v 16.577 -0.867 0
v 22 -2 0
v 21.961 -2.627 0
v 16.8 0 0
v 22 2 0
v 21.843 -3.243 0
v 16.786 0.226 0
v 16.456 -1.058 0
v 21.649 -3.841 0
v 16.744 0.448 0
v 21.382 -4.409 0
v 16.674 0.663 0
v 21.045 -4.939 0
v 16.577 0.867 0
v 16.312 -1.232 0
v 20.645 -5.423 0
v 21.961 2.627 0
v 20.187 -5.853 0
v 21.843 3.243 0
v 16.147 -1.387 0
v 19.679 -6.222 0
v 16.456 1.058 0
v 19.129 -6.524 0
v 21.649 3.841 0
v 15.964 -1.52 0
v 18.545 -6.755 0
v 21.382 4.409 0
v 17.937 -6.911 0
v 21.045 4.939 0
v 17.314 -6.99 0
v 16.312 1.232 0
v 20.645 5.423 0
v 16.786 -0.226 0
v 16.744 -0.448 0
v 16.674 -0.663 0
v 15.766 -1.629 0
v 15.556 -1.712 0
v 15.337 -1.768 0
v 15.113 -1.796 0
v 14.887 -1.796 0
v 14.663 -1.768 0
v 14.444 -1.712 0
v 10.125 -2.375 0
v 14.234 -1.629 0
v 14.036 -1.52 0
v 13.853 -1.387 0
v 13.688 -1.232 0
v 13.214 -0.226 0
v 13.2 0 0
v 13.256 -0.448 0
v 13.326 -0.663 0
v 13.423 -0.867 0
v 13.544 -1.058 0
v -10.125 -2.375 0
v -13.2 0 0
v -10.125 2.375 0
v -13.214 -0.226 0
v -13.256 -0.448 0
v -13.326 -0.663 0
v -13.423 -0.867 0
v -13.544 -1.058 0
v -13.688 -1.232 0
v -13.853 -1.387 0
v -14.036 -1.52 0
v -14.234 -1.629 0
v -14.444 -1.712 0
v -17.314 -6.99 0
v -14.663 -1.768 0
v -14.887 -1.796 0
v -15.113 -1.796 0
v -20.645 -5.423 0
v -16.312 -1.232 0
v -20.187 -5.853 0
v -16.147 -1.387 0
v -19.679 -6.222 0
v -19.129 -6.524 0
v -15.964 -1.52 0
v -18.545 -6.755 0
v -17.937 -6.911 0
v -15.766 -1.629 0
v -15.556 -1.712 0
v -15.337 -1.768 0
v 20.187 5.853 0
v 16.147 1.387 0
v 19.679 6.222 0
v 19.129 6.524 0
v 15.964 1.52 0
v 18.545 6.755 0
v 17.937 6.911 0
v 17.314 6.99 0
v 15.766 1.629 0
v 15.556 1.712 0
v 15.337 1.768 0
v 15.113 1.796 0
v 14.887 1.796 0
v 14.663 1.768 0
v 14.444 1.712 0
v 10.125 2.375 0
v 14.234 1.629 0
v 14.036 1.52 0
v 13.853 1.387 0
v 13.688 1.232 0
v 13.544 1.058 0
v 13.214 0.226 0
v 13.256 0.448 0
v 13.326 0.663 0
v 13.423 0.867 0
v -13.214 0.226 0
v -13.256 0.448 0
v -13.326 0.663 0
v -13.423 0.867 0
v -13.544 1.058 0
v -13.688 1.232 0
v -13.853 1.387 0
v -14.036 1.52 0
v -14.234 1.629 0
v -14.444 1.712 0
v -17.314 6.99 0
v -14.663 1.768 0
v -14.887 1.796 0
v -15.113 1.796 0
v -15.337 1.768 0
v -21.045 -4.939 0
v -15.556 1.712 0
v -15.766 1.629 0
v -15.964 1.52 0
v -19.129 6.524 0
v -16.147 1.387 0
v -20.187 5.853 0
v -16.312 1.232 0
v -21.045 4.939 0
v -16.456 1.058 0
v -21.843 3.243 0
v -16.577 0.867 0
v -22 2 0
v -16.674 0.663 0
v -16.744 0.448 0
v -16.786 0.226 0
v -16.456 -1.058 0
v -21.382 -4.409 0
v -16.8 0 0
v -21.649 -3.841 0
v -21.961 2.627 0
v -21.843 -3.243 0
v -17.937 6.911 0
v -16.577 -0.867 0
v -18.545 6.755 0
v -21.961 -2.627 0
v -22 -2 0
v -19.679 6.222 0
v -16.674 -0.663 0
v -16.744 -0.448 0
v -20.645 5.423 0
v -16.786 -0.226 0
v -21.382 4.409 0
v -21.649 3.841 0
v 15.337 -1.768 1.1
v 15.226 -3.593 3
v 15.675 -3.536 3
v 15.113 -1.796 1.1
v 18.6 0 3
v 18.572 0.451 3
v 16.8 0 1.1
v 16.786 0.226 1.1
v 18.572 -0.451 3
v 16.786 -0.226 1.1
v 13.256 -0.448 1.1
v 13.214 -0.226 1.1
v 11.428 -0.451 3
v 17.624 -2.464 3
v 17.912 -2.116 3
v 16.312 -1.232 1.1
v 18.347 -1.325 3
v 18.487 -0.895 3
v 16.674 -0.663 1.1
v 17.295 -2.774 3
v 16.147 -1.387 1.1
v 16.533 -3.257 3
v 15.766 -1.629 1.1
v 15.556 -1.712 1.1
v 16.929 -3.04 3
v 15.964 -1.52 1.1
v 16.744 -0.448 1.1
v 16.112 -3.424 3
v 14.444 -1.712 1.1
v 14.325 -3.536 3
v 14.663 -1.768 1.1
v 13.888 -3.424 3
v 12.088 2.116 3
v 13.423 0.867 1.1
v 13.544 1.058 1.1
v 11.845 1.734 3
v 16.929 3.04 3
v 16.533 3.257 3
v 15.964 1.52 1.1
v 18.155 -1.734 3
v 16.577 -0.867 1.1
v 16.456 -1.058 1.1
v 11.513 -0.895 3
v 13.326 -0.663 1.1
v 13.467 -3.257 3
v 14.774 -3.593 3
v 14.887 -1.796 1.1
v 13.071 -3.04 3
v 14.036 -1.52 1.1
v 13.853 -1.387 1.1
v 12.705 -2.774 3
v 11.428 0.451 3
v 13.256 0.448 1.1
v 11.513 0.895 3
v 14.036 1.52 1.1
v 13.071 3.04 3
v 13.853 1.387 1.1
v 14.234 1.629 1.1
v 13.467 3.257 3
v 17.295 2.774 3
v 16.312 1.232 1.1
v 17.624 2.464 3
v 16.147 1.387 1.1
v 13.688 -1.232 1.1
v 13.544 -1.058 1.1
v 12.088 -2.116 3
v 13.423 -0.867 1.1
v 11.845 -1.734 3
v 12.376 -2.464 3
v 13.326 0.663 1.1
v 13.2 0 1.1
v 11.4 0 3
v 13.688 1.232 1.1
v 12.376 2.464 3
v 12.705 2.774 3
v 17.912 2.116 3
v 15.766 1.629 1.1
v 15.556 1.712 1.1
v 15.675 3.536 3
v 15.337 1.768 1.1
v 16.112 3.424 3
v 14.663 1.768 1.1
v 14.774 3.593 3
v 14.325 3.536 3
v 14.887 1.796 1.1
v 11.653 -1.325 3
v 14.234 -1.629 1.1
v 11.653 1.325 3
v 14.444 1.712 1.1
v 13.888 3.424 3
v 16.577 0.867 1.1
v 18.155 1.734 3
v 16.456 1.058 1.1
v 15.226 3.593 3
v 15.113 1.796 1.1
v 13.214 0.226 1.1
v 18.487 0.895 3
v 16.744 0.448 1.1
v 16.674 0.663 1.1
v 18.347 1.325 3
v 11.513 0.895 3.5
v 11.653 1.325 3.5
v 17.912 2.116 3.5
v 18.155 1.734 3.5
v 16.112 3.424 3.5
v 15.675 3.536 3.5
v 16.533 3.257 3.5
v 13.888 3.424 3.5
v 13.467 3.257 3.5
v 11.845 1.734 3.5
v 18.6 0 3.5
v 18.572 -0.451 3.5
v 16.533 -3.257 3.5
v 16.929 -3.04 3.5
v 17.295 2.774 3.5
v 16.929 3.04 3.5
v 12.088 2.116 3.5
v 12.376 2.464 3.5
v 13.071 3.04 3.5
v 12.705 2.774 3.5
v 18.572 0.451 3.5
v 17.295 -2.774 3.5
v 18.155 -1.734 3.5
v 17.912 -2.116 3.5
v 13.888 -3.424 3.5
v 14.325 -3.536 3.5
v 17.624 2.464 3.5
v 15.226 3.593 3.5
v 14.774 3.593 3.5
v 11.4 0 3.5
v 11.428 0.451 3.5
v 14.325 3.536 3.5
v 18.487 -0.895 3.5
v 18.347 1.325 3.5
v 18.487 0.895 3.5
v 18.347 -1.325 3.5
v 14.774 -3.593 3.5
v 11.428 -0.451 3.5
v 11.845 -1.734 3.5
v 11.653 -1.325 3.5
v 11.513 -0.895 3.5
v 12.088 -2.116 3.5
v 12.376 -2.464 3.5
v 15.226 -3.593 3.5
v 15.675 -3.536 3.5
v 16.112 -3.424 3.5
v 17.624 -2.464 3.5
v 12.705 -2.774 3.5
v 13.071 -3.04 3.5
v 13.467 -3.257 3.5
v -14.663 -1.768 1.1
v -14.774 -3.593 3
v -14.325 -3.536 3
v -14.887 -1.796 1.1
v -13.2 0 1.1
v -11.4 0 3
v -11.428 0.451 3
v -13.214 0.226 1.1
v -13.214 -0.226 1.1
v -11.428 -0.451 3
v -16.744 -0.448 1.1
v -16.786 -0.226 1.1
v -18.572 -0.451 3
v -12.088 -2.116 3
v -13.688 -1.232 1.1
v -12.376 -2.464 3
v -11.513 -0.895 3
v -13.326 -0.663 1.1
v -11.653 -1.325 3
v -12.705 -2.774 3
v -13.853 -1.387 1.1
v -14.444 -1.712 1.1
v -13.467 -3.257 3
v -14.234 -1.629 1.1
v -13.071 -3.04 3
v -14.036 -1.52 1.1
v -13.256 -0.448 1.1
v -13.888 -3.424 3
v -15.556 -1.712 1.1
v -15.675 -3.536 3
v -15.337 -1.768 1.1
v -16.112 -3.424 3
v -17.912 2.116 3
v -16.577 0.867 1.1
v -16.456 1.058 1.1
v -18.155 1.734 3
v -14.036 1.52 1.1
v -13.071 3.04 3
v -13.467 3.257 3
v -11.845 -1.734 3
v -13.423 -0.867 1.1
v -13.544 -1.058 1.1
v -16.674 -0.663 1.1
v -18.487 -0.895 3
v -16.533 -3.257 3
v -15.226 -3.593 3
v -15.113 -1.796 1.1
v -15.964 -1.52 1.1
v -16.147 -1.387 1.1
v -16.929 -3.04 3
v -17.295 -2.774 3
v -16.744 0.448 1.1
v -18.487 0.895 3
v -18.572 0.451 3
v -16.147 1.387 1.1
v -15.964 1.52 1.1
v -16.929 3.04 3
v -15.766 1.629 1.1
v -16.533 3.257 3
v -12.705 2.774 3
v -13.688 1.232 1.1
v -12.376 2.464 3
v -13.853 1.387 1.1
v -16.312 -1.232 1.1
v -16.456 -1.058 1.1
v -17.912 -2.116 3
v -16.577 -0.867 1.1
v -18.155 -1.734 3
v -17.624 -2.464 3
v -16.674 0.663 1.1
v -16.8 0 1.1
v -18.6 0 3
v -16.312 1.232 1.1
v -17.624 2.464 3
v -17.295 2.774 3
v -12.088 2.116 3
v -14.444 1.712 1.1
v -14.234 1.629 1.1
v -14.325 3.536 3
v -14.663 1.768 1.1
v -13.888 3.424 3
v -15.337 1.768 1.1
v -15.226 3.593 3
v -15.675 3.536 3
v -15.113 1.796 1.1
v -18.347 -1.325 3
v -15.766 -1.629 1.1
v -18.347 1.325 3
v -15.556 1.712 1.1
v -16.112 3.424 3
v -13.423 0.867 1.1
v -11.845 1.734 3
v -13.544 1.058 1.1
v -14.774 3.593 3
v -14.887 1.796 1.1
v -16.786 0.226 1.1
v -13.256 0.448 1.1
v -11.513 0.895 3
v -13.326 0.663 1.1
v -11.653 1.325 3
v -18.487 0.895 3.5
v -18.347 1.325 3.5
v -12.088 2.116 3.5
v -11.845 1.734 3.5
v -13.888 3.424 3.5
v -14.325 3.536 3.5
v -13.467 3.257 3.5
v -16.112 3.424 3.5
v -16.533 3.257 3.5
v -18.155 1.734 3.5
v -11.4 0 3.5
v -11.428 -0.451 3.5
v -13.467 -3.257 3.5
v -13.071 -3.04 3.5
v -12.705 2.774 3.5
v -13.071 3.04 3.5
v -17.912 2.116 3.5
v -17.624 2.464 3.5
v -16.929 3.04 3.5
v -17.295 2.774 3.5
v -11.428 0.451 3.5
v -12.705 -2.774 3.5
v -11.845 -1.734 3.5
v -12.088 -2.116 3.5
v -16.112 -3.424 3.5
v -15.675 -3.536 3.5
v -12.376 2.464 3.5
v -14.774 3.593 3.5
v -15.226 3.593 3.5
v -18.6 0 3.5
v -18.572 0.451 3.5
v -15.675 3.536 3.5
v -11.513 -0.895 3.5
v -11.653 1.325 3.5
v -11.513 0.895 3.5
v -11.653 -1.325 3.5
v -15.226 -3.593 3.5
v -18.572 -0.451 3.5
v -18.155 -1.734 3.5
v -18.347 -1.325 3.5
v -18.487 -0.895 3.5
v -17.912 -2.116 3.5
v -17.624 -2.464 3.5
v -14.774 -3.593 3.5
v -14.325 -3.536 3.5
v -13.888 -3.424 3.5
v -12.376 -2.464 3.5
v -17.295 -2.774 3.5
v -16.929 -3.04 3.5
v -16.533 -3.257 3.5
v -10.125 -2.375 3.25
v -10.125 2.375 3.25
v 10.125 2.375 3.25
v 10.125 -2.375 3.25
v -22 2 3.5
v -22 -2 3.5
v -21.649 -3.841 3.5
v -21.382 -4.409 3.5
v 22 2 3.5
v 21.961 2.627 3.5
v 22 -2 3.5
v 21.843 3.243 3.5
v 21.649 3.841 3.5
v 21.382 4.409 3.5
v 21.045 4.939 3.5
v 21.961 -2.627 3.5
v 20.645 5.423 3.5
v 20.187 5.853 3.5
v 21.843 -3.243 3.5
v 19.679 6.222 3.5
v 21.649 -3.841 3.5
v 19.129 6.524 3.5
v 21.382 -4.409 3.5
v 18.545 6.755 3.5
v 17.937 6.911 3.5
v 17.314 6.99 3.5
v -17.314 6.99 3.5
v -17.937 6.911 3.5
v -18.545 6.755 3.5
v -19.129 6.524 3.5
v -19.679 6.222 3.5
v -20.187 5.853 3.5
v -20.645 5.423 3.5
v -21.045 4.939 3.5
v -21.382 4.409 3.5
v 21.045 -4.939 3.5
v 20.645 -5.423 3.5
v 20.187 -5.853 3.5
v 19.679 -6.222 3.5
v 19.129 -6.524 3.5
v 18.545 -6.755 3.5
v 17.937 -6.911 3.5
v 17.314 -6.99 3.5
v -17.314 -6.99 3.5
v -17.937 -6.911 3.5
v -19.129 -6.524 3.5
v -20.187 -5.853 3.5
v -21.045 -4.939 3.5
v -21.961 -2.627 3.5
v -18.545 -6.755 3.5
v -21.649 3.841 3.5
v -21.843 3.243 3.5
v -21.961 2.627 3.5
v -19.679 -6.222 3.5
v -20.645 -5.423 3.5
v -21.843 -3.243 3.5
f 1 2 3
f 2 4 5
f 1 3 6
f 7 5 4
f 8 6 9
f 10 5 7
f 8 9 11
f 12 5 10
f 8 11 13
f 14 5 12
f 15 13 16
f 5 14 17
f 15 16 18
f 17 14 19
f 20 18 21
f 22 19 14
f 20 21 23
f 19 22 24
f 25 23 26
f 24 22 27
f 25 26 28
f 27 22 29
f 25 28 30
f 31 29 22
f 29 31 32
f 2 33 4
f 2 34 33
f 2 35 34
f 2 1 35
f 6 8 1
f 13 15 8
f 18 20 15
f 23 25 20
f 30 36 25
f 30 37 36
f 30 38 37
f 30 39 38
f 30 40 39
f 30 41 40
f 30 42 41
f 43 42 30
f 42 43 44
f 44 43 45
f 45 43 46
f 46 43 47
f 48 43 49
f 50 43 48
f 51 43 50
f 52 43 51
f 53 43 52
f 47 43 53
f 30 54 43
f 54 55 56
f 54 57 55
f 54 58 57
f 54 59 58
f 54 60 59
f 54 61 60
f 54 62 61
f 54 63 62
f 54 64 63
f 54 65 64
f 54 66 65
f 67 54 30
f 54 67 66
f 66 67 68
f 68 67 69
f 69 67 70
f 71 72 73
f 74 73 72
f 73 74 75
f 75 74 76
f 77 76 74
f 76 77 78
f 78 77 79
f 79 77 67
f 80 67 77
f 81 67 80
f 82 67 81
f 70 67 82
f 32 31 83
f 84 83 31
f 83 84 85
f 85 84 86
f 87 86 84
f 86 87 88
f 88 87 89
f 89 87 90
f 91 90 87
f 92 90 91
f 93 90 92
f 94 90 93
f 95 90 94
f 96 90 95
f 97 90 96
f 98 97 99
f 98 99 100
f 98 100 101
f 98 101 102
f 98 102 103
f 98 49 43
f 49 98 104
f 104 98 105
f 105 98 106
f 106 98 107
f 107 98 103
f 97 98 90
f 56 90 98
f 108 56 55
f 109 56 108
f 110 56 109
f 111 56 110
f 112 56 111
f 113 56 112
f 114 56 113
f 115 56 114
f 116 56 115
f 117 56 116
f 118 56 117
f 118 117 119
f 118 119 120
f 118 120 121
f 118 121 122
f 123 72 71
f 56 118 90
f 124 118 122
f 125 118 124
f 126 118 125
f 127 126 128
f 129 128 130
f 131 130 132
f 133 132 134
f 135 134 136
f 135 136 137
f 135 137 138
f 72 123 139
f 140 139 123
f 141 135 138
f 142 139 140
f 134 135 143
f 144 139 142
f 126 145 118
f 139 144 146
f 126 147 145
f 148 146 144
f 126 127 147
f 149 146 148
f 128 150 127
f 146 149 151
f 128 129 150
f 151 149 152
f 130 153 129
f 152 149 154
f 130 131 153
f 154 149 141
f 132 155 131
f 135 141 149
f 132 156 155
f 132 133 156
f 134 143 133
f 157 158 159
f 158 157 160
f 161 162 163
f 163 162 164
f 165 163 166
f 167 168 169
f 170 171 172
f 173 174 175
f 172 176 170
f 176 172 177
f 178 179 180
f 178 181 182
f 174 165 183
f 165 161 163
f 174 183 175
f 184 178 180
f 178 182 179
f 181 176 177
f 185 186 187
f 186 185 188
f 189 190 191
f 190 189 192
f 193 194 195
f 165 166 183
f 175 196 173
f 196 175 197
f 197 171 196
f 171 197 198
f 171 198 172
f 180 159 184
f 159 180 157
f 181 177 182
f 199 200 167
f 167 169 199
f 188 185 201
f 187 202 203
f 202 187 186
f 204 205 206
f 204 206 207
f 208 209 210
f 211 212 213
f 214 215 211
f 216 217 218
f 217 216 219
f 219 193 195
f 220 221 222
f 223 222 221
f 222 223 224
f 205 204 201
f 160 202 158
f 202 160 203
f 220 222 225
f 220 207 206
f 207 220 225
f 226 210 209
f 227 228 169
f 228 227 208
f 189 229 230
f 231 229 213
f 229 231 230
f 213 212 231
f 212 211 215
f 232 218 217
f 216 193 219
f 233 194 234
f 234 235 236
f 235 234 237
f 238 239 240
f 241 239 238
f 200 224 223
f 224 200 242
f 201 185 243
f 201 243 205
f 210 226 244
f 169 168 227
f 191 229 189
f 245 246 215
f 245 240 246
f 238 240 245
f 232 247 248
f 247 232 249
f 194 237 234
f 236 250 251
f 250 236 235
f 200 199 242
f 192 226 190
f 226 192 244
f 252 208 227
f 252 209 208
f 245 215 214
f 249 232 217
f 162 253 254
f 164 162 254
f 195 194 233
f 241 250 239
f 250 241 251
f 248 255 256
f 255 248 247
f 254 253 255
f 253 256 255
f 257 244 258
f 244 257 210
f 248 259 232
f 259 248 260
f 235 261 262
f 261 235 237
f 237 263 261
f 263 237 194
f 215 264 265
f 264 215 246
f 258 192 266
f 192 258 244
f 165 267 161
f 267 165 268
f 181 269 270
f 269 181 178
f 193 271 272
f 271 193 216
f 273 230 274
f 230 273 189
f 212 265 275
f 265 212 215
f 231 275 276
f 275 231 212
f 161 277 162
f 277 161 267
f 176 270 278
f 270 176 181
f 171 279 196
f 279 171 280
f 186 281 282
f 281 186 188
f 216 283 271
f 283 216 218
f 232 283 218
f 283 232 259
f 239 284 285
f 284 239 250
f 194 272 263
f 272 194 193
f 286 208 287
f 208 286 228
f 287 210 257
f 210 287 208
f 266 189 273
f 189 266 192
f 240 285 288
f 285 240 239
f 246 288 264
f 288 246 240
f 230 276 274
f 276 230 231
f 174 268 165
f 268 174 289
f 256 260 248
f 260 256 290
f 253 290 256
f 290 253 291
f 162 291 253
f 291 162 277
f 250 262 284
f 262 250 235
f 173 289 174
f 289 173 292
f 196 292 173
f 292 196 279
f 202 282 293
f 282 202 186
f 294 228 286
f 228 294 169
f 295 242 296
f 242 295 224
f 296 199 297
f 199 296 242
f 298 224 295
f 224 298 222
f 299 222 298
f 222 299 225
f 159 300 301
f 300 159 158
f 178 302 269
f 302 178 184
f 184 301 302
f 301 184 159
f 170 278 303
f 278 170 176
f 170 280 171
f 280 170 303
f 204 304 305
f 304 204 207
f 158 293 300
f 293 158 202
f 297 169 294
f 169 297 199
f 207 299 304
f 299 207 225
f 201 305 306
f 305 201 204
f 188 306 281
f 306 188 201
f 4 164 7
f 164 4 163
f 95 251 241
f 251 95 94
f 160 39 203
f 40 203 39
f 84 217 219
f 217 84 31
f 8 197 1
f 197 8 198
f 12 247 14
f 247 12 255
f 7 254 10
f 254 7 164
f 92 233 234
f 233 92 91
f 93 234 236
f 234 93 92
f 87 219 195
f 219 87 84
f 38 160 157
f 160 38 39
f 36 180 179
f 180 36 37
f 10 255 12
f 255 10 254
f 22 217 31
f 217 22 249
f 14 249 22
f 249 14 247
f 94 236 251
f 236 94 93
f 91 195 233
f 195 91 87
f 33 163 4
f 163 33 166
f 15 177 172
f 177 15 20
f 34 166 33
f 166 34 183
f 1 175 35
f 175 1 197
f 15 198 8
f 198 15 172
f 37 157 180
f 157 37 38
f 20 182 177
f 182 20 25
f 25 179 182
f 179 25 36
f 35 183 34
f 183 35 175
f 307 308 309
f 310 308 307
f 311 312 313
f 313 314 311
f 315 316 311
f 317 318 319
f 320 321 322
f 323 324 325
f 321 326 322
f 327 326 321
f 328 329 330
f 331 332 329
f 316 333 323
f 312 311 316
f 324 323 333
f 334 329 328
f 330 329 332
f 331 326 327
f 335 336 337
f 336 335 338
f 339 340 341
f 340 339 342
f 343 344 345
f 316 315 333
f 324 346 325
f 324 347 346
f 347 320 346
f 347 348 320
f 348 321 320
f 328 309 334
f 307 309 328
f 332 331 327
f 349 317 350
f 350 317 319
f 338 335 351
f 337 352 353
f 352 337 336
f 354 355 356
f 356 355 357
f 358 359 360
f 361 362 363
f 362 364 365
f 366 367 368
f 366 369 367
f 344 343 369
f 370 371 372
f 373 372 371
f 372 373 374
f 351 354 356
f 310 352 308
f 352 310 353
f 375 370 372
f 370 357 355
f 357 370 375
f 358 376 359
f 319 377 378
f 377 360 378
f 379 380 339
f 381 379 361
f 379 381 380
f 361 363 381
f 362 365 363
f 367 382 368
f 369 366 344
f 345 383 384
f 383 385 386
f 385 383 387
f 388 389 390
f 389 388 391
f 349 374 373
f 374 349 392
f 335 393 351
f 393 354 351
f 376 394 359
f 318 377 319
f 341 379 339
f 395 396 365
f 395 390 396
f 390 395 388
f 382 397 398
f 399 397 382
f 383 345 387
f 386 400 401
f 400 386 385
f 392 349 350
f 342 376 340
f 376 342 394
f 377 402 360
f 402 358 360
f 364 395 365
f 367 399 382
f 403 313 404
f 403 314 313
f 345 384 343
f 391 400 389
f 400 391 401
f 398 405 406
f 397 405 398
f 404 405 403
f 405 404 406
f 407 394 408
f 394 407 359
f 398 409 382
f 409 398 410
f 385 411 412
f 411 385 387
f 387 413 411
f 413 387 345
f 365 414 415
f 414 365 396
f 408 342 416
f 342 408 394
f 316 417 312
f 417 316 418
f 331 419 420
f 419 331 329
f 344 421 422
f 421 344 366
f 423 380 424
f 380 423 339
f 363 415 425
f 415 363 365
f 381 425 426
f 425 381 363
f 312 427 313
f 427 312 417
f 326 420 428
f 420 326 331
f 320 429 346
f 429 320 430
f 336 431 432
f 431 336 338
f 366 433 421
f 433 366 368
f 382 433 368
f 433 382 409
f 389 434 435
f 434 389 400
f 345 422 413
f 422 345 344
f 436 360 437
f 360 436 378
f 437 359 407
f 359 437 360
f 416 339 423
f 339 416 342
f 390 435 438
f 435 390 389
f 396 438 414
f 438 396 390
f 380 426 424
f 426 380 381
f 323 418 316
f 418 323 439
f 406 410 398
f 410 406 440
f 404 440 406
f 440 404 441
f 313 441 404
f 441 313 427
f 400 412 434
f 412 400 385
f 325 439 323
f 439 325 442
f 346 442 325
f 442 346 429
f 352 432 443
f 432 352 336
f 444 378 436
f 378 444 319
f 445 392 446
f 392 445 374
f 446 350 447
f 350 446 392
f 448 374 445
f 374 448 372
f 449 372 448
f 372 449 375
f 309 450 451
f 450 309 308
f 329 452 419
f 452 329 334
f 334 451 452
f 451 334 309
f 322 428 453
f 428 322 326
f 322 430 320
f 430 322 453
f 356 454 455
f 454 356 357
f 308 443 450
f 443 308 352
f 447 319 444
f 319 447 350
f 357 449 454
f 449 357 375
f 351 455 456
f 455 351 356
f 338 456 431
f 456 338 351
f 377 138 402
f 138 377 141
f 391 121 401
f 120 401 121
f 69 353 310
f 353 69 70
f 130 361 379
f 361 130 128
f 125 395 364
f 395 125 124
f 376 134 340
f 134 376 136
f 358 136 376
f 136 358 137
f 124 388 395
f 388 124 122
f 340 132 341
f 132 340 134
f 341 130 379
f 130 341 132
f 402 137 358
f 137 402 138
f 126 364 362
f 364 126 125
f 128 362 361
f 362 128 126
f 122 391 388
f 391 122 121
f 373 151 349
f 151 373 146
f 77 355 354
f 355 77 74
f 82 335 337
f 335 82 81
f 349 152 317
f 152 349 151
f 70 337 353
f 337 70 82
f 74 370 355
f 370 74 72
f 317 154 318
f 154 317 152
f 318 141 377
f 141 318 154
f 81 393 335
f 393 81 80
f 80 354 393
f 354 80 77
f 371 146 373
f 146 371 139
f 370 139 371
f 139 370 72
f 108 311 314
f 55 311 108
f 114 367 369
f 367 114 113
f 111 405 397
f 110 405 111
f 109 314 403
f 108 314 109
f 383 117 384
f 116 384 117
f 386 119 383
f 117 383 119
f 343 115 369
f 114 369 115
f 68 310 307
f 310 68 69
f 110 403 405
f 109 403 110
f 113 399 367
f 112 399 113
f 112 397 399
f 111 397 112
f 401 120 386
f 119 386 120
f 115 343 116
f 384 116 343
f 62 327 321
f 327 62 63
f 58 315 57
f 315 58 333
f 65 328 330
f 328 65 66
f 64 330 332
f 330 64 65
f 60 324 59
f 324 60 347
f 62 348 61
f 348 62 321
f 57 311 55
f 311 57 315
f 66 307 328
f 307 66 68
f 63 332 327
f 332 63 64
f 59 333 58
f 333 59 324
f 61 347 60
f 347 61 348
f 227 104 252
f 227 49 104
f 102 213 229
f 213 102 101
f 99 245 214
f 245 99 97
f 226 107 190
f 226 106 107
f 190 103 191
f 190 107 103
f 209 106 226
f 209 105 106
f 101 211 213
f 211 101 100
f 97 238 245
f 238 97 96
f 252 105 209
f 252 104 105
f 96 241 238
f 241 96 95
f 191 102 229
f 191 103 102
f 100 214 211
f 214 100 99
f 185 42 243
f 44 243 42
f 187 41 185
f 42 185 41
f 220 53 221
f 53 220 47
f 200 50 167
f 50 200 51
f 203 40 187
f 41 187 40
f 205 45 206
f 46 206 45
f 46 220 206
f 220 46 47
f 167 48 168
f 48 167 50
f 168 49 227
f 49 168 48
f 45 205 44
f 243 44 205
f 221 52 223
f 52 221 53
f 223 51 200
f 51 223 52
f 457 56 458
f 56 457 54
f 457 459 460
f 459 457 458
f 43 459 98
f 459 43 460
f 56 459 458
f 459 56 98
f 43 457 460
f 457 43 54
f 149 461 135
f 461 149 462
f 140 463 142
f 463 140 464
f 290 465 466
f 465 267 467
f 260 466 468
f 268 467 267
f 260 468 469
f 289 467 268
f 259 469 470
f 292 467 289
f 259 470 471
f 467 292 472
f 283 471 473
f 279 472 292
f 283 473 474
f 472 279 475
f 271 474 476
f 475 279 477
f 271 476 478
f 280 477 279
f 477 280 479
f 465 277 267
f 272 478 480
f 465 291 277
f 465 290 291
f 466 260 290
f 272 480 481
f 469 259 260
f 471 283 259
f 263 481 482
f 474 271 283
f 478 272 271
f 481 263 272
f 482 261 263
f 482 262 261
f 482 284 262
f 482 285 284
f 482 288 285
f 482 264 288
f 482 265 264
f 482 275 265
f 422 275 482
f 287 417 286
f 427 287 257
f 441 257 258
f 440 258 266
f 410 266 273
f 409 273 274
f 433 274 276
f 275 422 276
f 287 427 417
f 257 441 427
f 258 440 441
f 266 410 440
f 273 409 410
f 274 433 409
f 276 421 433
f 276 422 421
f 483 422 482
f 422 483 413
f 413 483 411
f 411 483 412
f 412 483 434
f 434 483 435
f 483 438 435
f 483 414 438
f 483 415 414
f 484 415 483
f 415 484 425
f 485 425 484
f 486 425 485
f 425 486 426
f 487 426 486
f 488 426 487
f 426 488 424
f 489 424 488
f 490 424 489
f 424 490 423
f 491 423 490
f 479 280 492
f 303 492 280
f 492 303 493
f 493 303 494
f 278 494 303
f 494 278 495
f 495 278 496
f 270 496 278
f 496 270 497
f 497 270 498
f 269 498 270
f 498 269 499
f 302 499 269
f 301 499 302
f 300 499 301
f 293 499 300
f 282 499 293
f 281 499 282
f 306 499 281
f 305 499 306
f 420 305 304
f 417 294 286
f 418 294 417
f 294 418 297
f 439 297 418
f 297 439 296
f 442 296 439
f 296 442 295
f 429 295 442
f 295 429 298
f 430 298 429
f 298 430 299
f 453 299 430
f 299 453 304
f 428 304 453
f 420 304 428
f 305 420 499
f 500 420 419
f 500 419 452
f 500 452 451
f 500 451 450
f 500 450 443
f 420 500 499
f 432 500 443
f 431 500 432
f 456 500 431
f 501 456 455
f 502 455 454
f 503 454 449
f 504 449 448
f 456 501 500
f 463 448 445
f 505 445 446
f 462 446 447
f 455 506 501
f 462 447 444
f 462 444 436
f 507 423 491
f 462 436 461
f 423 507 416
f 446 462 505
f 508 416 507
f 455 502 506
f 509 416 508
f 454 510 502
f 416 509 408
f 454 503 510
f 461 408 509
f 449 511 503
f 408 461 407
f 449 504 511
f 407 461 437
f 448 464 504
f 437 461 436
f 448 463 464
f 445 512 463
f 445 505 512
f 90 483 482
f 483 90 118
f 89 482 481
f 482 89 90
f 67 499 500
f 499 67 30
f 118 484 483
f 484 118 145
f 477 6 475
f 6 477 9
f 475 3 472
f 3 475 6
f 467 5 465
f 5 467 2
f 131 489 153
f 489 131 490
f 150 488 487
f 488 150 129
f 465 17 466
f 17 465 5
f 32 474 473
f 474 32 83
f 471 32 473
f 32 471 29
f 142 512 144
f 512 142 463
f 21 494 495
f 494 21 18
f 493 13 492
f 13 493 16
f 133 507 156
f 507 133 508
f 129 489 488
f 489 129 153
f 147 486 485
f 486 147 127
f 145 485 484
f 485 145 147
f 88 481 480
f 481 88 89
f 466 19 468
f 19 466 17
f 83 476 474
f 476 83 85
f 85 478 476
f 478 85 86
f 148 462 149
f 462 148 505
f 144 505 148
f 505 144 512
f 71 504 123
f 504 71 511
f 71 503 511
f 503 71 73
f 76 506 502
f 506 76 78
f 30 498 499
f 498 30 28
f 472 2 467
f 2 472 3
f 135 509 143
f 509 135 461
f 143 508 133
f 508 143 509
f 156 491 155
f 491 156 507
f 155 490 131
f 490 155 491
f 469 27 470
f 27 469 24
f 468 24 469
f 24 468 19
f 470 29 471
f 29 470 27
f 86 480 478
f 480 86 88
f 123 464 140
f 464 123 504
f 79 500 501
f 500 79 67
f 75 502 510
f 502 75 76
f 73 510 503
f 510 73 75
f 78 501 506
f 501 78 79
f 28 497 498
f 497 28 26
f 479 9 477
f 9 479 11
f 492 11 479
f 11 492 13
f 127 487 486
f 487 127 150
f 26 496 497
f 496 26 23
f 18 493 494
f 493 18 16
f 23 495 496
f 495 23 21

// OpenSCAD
$fn = 50;


difference() {
	union() {
		hull() {
			translate(v = [-17.0000000000, 2.0000000000, 0]) {
				cylinder(h = 3.5000000000, r = 5);
			}
			translate(v = [17.0000000000, 2.0000000000, 0]) {
				cylinder(h = 3.5000000000, r = 5);
			}
			translate(v = [-17.0000000000, -2.0000000000, 0]) {
				cylinder(h = 3.5000000000, r = 5);
			}
			translate(v = [17.0000000000, -2.0000000000, 0]) {
				cylinder(h = 3.5000000000, r = 5);
			}
		}
	}
	union() {
		translate(v = [15.0000000000, 0, 3.0000000000]) {
			rotate(a = [0, 0, 0]) {
				difference() {
					union() {
						translate(v = [0, 0, -3.0000000000]) {
							cylinder(h = 3.0000000000, r = 1.5000000000);
						}
						translate(v = [0, 0, -1.9000000000]) {
							cylinder(h = 1.9000000000, r1 = 1.8000000000, r2 = 3.6000000000);
						}
						cylinder(h = 250, r = 3.6000000000);
						translate(v = [0, 0, -3.0000000000]) {
							cylinder(h = 3.0000000000, r = 1.8000000000);
						}
						translate(v = [0, 0, -3.0000000000]) {
							cylinder(h = 3.0000000000, r = 1.5000000000);
						}
					}
					union();
				}
			}
		}
		translate(v = [-15.0000000000, 0, 3.0000000000]) {
			rotate(a = [0, 0, 0]) {
				difference() {
					union() {
						translate(v = [0, 0, -3.0000000000]) {
							cylinder(h = 3.0000000000, r = 1.5000000000);
						}
						translate(v = [0, 0, -1.9000000000]) {
							cylinder(h = 1.9000000000, r1 = 1.8000000000, r2 = 3.6000000000);
						}
						cylinder(h = 250, r = 3.6000000000);
						translate(v = [0, 0, -3.0000000000]) {
							cylinder(h = 3.0000000000, r = 1.8000000000);
						}
						translate(v = [0, 0, -3.0000000000]) {
							cylinder(h = 3.0000000000, r = 1.5000000000);
						}
					}
					union();
				}
			}
		}
		translate(v = [-15.0000000000, 0.0000000000, 0]) {
			cylinder(h = 3.5000000000, r = 1.8000000000);
		}
		translate(v = [15.0000000000, 0.0000000000, 0]) {
			cylinder(h = 3.5000000000, r = 1.8000000000);
		}
		translate(v = [-15.0000000000, 0.0000000000, 0]) {
			cylinder(h = 3.5000000000, r = 1.8000000000);
		}
		translate(v = [15.0000000000, 0.0000000000, 0]) {
			cylinder(h = 3.5000000000, r = 1.8000000000);
		}
		translate(v = [-15.0000000000, 0.0000000000, 0]) {
			cylinder(h = 3.5000000000, r = 1.8000000000);
		}
		translate(v = [15.0000000000, 0.0000000000, 0]) {
			cylinder(h = 3.5000000000, r = 1.8000000000);
		}
		translate(v = [-15.0000000000, 0.0000000000, 0]) {
			cylinder(h = 3.5000000000, r = 1.8000000000);
		}
		translate(v = [15.0000000000, 0.0000000000, 0]) {
			cylinder(h = 3.5000000000, r = 1.8000000000);
		}
		#translate(v = [-10.1250000000, -2.3750000000, 0]) {
			cube(size = [20.2500000000, 4.7500000000, 3.2500000000]);
		}
	}
}
